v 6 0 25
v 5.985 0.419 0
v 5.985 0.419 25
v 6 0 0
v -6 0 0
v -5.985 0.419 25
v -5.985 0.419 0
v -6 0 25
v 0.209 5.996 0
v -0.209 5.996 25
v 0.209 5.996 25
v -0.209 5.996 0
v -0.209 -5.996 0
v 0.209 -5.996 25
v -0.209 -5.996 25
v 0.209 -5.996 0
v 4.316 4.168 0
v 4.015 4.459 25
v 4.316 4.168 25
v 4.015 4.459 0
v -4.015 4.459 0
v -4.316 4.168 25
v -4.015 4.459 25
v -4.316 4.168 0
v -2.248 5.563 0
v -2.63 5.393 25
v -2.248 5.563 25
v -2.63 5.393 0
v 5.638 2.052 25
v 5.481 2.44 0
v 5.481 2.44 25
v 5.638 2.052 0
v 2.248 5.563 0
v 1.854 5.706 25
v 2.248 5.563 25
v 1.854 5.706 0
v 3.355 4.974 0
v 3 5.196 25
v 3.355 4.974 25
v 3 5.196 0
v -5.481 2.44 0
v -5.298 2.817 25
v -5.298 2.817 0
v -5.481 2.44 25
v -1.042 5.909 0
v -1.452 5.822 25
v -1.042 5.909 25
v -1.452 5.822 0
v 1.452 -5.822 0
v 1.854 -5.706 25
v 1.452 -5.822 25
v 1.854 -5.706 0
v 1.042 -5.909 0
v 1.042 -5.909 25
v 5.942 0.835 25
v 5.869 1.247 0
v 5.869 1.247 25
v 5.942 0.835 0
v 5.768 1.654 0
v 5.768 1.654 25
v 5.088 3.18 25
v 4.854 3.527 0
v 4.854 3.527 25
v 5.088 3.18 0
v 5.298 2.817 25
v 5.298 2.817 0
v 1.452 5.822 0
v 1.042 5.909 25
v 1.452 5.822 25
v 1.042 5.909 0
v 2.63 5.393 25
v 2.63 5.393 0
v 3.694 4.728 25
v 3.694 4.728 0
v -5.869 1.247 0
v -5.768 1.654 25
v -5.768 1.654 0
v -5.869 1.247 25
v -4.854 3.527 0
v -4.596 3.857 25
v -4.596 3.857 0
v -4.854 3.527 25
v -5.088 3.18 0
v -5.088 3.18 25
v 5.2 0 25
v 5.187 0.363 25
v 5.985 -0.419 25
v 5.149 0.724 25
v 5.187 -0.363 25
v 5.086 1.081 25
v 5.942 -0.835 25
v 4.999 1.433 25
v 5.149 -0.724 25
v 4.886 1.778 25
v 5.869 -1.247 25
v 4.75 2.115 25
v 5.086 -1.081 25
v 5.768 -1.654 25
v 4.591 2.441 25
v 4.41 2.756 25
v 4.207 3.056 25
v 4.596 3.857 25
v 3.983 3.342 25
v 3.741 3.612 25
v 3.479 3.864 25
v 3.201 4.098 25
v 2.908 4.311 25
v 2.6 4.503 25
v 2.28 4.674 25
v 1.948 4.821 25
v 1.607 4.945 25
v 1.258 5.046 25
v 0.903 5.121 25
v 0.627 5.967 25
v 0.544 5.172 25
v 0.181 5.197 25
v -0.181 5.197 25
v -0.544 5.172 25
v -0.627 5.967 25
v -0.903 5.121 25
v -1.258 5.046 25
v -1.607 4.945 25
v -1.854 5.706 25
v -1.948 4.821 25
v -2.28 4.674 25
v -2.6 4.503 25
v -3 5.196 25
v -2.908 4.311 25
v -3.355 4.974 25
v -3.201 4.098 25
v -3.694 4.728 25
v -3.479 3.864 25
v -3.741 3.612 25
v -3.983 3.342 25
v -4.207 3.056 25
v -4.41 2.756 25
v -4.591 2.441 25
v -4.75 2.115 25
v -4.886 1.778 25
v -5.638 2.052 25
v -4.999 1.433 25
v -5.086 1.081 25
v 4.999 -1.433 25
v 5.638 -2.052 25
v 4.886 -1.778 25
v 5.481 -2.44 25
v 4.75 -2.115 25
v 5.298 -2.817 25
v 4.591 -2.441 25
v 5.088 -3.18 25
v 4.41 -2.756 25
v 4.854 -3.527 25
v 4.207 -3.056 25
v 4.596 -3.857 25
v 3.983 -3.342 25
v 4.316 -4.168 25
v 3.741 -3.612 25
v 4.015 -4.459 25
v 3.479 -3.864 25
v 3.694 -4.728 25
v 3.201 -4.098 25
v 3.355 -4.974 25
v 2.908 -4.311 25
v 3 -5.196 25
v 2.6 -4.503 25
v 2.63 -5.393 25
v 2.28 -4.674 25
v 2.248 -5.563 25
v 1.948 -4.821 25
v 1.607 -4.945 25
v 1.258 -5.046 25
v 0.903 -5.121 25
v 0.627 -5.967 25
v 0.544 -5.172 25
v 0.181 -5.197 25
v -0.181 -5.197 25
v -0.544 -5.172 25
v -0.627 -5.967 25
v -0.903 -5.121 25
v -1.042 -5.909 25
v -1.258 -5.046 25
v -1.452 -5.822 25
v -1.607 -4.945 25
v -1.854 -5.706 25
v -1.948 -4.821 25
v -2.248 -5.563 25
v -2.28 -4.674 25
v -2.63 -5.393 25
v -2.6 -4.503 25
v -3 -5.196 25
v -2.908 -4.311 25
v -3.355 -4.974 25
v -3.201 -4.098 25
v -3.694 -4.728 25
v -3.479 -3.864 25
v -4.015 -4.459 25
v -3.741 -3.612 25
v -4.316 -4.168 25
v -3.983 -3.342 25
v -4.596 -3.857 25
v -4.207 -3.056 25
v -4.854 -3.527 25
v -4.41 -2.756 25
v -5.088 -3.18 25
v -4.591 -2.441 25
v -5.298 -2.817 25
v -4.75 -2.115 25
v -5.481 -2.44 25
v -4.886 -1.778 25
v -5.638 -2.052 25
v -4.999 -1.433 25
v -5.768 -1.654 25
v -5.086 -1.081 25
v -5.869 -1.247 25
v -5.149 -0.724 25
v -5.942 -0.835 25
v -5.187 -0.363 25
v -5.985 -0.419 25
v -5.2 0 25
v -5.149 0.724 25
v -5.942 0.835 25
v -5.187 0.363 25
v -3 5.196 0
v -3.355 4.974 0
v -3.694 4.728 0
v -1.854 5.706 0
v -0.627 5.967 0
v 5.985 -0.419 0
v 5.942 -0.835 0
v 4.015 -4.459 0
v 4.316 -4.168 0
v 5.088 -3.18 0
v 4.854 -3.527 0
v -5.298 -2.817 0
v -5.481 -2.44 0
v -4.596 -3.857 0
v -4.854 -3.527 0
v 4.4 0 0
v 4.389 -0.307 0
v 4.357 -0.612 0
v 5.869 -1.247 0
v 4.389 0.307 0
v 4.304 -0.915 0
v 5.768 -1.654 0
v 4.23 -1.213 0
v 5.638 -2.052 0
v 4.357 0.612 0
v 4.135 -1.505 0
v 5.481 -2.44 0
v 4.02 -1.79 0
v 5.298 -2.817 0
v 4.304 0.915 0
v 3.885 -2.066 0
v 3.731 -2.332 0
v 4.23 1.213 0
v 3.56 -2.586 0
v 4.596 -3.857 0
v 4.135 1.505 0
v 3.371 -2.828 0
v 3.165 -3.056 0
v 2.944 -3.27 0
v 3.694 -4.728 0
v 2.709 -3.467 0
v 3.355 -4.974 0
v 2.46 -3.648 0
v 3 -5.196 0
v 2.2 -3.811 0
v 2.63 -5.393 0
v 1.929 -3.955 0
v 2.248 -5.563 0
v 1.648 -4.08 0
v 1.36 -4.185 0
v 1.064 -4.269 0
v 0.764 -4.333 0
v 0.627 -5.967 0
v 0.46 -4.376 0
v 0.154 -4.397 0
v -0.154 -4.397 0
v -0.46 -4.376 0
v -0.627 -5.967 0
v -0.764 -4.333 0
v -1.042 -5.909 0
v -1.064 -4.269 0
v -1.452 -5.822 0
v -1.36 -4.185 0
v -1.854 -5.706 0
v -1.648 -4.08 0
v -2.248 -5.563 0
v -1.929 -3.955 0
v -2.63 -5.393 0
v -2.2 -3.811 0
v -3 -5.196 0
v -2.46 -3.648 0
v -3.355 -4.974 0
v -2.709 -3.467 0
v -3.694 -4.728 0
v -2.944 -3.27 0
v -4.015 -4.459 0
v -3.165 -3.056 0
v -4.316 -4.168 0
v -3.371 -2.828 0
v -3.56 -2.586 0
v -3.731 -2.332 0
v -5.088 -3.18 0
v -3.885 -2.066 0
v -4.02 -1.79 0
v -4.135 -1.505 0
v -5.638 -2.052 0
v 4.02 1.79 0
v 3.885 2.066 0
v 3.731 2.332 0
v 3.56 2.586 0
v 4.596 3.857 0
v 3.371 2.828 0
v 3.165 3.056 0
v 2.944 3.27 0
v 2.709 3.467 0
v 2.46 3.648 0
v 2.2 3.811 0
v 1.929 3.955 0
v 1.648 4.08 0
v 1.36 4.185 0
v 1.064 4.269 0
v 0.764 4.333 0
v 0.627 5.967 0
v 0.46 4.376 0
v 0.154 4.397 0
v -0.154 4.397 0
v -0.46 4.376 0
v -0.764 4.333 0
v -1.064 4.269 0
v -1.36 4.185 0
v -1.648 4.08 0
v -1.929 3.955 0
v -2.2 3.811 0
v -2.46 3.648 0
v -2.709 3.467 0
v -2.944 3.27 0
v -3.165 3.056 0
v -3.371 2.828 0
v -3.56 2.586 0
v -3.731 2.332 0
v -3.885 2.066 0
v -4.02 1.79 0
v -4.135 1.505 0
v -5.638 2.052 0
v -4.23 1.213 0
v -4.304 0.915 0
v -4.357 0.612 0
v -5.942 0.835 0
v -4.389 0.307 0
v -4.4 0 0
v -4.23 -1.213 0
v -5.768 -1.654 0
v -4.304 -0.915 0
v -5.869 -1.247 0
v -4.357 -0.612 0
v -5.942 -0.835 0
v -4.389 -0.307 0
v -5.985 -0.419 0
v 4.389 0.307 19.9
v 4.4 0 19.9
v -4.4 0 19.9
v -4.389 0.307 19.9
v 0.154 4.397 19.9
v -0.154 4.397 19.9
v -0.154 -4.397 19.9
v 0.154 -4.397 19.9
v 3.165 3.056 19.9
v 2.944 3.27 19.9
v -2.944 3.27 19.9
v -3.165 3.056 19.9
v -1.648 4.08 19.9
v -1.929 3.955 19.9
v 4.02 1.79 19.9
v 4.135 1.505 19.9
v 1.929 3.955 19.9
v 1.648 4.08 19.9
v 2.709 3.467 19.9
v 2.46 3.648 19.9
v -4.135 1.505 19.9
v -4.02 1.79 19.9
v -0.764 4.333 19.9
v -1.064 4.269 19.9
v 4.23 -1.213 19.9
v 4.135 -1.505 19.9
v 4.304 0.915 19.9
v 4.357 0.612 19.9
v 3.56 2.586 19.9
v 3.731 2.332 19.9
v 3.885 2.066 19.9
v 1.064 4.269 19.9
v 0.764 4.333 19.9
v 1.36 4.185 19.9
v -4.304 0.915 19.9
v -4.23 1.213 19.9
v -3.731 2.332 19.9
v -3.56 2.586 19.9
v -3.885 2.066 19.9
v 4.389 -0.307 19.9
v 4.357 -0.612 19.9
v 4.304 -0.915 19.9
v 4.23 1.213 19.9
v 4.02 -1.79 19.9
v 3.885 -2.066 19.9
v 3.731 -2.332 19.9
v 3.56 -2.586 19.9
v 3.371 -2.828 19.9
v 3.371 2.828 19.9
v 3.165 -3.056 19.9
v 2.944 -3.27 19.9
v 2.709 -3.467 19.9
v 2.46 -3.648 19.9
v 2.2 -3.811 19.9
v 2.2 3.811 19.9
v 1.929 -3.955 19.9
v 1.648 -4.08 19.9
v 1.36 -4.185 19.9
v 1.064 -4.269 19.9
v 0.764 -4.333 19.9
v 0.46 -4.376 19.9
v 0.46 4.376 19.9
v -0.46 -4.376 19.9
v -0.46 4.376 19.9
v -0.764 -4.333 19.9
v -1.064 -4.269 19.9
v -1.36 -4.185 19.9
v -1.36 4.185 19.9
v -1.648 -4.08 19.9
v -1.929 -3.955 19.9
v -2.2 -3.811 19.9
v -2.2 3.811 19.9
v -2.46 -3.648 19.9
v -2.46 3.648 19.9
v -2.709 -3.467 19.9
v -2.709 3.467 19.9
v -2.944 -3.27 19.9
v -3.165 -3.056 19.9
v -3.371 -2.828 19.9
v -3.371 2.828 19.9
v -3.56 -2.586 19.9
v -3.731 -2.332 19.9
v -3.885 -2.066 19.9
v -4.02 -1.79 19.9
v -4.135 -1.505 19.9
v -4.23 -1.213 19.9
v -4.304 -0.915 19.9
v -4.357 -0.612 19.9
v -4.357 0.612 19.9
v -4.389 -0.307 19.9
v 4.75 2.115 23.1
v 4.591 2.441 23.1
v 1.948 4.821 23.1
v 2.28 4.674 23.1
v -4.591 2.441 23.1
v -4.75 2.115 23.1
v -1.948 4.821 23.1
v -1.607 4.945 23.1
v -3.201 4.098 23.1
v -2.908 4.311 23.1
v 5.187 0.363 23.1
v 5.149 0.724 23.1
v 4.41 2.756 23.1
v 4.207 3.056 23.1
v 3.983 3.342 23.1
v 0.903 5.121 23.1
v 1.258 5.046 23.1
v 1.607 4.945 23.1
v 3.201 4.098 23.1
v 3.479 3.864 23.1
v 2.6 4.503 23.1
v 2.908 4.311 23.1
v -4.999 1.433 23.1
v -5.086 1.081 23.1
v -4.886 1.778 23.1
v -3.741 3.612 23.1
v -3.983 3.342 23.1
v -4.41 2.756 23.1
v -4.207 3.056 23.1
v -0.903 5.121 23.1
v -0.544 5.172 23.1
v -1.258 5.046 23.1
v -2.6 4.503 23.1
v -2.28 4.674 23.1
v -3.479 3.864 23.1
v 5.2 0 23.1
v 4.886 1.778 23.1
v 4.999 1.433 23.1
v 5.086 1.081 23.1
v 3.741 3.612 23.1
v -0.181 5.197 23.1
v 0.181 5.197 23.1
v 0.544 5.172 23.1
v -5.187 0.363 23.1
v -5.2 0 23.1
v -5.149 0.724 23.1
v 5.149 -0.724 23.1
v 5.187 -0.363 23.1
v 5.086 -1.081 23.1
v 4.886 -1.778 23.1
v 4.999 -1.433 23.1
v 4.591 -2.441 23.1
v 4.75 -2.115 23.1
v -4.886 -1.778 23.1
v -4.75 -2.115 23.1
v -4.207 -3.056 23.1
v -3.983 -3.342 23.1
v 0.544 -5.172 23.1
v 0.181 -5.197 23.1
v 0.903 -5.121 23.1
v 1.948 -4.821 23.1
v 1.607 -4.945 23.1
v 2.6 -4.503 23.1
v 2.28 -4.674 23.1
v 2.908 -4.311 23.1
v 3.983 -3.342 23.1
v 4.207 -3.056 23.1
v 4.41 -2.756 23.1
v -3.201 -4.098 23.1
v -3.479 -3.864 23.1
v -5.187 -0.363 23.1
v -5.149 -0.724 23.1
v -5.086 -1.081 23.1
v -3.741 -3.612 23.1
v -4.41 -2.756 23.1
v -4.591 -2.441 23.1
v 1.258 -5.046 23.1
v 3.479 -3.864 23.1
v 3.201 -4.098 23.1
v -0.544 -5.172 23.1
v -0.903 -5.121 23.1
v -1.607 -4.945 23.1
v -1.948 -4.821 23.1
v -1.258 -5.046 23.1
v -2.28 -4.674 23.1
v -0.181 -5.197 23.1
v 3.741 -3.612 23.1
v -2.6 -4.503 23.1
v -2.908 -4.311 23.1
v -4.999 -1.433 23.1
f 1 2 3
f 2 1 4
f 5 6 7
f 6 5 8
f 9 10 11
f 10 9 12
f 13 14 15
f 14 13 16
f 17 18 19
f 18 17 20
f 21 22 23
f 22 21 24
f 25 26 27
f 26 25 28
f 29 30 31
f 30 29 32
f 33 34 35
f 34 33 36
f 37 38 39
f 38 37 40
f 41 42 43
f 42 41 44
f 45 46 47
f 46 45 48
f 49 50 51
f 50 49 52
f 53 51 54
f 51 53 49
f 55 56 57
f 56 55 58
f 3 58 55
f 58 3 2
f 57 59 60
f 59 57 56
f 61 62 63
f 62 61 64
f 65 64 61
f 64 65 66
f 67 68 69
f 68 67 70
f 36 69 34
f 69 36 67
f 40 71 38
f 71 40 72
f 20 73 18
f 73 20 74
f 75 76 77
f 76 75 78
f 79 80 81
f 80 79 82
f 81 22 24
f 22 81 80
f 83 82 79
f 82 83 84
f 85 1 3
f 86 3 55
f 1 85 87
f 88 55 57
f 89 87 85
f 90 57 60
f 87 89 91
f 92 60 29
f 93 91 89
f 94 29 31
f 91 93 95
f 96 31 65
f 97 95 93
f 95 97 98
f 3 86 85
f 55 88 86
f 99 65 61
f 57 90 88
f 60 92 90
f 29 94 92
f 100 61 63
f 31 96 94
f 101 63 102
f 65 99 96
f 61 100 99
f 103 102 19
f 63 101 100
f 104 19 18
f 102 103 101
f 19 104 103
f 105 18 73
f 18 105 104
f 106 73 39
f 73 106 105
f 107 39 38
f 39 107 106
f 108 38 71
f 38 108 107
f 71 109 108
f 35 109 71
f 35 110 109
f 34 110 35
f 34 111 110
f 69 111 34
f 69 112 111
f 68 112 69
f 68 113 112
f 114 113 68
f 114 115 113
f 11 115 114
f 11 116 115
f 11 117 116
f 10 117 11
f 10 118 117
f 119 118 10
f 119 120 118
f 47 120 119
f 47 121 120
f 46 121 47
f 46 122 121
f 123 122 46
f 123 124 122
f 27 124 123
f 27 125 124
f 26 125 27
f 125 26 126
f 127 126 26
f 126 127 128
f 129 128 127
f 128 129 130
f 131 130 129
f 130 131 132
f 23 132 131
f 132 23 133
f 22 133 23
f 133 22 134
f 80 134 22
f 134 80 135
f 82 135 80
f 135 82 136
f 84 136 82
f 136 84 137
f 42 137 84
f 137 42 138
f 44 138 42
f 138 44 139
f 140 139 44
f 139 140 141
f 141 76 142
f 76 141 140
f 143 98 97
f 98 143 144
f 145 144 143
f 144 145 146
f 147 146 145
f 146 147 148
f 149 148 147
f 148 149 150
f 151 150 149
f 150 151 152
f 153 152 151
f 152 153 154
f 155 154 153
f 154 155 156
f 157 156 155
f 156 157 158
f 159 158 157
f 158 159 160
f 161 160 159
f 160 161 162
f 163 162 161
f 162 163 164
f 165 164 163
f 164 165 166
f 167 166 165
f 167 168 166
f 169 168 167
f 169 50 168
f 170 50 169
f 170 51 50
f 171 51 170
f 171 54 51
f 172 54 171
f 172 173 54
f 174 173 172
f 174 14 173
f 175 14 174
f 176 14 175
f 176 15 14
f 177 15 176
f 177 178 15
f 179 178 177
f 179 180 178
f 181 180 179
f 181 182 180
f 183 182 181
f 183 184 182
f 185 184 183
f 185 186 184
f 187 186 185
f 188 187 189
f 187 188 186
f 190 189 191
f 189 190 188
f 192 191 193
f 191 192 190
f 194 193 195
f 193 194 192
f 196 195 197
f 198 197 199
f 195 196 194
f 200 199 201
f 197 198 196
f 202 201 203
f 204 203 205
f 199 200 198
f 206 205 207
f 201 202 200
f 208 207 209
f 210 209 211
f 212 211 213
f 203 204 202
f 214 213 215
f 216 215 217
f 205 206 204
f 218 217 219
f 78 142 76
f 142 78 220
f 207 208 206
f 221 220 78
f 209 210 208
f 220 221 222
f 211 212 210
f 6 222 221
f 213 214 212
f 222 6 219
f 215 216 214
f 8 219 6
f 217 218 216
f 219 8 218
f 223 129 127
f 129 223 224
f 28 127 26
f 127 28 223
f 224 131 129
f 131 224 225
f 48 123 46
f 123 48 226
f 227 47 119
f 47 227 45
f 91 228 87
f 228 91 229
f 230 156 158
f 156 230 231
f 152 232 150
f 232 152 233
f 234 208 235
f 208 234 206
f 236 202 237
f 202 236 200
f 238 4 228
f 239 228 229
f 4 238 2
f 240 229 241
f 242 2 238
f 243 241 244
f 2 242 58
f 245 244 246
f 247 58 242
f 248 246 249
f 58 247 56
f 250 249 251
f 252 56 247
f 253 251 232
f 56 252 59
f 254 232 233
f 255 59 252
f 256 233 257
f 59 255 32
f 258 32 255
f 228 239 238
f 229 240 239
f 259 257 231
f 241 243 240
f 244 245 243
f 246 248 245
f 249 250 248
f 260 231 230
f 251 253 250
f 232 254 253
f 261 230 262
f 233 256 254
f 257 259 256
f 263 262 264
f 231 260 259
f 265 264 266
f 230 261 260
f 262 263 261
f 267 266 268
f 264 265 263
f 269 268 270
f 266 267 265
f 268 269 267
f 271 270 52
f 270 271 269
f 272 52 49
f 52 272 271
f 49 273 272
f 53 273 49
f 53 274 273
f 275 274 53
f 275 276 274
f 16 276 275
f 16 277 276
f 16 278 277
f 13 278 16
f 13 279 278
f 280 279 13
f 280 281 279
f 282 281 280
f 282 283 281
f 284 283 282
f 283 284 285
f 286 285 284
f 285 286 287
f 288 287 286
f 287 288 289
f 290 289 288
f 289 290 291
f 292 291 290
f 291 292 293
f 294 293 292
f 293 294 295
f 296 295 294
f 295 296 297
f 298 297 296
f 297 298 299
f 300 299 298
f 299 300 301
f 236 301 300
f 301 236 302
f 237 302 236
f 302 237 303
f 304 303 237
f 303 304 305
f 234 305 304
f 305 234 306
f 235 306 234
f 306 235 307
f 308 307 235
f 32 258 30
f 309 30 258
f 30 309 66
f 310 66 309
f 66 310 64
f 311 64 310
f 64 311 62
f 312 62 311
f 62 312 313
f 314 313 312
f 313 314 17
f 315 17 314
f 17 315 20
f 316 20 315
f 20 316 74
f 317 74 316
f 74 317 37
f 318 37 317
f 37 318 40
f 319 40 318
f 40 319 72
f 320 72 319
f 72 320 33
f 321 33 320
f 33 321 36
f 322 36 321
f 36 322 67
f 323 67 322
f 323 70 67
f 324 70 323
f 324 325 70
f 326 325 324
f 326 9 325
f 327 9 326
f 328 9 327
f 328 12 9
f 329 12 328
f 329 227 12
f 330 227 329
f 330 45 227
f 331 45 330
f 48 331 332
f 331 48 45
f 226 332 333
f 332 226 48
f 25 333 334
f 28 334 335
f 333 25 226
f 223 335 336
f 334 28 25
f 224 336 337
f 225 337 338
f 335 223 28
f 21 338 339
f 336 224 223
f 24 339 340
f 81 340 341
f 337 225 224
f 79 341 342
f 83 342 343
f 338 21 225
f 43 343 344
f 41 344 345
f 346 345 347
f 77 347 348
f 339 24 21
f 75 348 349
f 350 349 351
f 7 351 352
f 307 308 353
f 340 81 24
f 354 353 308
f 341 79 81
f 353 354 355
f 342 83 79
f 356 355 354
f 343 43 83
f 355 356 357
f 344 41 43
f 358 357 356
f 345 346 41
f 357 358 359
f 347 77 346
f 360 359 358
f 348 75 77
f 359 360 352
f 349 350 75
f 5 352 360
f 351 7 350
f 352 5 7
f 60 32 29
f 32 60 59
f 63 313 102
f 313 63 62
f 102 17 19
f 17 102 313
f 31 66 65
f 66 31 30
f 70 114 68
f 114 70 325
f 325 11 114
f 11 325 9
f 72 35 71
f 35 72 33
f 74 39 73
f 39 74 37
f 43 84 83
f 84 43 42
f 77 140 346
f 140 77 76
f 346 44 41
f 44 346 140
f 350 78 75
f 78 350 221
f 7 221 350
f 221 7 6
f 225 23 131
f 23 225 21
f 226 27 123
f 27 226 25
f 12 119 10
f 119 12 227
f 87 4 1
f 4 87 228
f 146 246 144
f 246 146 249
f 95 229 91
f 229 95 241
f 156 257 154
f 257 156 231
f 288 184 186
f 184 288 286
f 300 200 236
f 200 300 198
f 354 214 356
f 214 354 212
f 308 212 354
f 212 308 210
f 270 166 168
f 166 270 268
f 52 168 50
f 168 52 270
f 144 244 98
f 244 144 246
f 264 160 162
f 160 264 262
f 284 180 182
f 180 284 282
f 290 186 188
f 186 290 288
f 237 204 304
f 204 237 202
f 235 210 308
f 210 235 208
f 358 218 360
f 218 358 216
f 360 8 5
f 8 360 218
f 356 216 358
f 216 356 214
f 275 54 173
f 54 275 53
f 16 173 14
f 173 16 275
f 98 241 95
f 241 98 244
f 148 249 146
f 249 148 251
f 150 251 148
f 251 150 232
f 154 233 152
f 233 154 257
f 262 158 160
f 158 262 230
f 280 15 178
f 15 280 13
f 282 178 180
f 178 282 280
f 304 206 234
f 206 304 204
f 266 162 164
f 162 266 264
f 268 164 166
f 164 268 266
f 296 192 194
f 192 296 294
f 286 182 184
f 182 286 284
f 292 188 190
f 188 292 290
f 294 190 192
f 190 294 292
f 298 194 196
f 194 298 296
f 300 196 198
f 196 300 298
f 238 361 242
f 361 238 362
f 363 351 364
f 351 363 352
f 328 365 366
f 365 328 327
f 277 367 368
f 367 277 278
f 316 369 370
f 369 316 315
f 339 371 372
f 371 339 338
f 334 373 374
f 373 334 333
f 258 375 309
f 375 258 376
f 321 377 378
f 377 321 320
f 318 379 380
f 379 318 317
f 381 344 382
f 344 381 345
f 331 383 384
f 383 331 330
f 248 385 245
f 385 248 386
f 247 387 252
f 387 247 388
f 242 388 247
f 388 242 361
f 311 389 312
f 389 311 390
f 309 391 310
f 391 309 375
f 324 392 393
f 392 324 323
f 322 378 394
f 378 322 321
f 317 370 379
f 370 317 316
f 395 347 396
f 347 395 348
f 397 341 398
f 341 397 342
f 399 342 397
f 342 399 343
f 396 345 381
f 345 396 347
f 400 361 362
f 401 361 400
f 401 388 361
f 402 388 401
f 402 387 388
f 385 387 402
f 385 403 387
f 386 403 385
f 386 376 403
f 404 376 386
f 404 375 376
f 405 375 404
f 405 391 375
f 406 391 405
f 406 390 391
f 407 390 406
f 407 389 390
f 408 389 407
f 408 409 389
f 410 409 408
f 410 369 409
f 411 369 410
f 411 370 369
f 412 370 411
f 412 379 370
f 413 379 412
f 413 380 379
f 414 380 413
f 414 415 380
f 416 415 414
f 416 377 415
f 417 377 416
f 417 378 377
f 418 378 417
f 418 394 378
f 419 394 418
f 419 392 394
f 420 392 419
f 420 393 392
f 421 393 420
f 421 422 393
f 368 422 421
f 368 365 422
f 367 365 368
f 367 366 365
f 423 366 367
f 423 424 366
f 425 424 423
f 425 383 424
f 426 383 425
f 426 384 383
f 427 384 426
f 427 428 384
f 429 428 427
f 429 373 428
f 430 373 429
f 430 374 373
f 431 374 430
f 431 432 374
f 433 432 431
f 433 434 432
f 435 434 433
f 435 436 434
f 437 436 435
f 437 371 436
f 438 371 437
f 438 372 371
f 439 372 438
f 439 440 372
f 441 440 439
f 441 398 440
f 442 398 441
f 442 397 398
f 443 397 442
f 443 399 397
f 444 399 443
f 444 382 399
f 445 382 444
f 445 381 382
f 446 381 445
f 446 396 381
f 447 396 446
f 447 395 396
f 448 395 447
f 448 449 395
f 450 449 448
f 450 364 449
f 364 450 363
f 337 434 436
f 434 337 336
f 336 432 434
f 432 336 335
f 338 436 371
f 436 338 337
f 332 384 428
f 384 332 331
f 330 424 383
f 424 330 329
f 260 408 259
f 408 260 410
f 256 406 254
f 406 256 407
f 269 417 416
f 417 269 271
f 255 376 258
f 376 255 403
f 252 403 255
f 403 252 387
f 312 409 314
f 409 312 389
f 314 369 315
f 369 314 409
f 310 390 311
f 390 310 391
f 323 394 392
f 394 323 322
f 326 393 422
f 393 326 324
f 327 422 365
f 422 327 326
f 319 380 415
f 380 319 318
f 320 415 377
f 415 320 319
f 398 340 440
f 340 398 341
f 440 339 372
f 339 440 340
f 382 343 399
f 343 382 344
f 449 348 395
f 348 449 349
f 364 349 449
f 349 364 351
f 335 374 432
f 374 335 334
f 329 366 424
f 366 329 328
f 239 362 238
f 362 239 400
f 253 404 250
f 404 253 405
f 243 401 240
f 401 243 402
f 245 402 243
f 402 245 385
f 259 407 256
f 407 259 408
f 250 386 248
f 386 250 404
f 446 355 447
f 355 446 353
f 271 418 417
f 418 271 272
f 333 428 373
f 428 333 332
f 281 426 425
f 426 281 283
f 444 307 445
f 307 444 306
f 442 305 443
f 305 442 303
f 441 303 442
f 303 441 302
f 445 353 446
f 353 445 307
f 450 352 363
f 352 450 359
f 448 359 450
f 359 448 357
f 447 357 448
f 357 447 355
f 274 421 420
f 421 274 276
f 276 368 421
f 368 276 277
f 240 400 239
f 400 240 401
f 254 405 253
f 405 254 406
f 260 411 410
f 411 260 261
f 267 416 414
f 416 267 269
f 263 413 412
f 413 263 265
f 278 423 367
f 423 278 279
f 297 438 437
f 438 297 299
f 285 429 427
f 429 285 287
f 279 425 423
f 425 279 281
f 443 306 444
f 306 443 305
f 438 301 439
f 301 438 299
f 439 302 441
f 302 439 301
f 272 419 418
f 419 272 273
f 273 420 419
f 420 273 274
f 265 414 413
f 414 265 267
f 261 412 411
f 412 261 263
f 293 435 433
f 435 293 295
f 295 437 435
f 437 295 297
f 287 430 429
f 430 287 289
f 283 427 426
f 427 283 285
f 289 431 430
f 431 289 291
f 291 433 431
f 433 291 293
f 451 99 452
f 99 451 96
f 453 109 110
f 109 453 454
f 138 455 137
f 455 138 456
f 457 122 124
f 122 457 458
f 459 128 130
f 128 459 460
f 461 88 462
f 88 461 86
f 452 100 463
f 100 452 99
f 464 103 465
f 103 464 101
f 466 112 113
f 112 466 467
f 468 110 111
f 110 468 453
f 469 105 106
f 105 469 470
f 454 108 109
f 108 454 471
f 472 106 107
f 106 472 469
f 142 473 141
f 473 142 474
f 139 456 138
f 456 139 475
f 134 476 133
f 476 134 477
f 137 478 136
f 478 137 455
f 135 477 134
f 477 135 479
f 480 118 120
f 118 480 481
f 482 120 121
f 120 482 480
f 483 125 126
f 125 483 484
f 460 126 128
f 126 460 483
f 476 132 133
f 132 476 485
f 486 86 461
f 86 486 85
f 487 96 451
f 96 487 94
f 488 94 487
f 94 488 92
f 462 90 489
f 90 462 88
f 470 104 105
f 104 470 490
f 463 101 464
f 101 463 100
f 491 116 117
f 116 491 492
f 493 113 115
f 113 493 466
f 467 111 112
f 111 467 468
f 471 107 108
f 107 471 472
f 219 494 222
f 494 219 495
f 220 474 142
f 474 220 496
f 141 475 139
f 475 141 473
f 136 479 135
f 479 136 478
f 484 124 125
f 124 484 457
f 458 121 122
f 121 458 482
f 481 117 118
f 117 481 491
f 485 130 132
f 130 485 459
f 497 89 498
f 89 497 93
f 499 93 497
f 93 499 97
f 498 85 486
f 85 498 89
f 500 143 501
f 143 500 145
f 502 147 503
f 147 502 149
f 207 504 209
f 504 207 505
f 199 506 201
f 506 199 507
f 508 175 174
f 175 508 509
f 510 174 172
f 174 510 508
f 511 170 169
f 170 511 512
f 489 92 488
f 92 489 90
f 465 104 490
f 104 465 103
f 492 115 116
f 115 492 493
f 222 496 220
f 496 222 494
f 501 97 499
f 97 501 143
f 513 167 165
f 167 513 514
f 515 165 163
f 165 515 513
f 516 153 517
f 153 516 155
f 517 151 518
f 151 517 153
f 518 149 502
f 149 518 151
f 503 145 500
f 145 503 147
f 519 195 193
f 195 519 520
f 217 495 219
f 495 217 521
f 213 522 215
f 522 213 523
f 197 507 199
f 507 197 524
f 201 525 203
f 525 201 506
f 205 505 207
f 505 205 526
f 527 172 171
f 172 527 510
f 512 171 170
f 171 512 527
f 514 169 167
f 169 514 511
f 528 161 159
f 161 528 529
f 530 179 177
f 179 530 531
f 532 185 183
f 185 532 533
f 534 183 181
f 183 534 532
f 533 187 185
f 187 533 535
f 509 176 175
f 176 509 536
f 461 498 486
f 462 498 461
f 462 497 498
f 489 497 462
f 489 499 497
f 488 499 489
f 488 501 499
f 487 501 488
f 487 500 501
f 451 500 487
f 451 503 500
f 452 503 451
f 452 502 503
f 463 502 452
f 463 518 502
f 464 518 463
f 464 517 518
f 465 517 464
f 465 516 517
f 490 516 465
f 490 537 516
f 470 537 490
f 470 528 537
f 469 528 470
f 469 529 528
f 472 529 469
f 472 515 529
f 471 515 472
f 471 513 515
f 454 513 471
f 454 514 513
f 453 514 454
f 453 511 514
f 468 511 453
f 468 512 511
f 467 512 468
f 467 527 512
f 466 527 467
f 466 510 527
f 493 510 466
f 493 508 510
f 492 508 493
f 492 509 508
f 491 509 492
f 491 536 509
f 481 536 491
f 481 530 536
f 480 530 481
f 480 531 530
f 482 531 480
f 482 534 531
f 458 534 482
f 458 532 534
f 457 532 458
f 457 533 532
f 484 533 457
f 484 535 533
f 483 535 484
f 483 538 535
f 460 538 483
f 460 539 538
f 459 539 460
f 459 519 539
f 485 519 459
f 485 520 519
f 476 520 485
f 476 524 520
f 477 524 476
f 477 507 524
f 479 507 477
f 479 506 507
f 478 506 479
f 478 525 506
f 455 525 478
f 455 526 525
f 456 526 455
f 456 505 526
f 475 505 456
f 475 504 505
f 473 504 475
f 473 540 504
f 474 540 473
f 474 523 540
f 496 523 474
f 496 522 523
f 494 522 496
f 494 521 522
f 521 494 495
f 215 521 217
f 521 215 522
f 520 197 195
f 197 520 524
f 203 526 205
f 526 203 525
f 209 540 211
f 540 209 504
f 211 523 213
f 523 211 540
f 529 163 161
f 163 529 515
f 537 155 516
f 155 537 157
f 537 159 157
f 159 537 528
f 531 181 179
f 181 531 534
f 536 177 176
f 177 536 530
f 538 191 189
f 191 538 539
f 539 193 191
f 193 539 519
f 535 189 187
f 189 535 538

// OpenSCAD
module arm_end(extra=.2){
  difference(){
    translate([0, 0, 12.5]) cylinder(r=6, h=25, center=true, $fn=90);
    translate([0, 0, 9.9]) cylinder(r=4+0.2+extra, h=20, center=true, $fn=90);
    translate([0, 0, 24.1]) cylinder(r=5+extra, h=2, center=true, $fn=90);
  //  cube([20,20,25]);
  }
}


arm_end();
